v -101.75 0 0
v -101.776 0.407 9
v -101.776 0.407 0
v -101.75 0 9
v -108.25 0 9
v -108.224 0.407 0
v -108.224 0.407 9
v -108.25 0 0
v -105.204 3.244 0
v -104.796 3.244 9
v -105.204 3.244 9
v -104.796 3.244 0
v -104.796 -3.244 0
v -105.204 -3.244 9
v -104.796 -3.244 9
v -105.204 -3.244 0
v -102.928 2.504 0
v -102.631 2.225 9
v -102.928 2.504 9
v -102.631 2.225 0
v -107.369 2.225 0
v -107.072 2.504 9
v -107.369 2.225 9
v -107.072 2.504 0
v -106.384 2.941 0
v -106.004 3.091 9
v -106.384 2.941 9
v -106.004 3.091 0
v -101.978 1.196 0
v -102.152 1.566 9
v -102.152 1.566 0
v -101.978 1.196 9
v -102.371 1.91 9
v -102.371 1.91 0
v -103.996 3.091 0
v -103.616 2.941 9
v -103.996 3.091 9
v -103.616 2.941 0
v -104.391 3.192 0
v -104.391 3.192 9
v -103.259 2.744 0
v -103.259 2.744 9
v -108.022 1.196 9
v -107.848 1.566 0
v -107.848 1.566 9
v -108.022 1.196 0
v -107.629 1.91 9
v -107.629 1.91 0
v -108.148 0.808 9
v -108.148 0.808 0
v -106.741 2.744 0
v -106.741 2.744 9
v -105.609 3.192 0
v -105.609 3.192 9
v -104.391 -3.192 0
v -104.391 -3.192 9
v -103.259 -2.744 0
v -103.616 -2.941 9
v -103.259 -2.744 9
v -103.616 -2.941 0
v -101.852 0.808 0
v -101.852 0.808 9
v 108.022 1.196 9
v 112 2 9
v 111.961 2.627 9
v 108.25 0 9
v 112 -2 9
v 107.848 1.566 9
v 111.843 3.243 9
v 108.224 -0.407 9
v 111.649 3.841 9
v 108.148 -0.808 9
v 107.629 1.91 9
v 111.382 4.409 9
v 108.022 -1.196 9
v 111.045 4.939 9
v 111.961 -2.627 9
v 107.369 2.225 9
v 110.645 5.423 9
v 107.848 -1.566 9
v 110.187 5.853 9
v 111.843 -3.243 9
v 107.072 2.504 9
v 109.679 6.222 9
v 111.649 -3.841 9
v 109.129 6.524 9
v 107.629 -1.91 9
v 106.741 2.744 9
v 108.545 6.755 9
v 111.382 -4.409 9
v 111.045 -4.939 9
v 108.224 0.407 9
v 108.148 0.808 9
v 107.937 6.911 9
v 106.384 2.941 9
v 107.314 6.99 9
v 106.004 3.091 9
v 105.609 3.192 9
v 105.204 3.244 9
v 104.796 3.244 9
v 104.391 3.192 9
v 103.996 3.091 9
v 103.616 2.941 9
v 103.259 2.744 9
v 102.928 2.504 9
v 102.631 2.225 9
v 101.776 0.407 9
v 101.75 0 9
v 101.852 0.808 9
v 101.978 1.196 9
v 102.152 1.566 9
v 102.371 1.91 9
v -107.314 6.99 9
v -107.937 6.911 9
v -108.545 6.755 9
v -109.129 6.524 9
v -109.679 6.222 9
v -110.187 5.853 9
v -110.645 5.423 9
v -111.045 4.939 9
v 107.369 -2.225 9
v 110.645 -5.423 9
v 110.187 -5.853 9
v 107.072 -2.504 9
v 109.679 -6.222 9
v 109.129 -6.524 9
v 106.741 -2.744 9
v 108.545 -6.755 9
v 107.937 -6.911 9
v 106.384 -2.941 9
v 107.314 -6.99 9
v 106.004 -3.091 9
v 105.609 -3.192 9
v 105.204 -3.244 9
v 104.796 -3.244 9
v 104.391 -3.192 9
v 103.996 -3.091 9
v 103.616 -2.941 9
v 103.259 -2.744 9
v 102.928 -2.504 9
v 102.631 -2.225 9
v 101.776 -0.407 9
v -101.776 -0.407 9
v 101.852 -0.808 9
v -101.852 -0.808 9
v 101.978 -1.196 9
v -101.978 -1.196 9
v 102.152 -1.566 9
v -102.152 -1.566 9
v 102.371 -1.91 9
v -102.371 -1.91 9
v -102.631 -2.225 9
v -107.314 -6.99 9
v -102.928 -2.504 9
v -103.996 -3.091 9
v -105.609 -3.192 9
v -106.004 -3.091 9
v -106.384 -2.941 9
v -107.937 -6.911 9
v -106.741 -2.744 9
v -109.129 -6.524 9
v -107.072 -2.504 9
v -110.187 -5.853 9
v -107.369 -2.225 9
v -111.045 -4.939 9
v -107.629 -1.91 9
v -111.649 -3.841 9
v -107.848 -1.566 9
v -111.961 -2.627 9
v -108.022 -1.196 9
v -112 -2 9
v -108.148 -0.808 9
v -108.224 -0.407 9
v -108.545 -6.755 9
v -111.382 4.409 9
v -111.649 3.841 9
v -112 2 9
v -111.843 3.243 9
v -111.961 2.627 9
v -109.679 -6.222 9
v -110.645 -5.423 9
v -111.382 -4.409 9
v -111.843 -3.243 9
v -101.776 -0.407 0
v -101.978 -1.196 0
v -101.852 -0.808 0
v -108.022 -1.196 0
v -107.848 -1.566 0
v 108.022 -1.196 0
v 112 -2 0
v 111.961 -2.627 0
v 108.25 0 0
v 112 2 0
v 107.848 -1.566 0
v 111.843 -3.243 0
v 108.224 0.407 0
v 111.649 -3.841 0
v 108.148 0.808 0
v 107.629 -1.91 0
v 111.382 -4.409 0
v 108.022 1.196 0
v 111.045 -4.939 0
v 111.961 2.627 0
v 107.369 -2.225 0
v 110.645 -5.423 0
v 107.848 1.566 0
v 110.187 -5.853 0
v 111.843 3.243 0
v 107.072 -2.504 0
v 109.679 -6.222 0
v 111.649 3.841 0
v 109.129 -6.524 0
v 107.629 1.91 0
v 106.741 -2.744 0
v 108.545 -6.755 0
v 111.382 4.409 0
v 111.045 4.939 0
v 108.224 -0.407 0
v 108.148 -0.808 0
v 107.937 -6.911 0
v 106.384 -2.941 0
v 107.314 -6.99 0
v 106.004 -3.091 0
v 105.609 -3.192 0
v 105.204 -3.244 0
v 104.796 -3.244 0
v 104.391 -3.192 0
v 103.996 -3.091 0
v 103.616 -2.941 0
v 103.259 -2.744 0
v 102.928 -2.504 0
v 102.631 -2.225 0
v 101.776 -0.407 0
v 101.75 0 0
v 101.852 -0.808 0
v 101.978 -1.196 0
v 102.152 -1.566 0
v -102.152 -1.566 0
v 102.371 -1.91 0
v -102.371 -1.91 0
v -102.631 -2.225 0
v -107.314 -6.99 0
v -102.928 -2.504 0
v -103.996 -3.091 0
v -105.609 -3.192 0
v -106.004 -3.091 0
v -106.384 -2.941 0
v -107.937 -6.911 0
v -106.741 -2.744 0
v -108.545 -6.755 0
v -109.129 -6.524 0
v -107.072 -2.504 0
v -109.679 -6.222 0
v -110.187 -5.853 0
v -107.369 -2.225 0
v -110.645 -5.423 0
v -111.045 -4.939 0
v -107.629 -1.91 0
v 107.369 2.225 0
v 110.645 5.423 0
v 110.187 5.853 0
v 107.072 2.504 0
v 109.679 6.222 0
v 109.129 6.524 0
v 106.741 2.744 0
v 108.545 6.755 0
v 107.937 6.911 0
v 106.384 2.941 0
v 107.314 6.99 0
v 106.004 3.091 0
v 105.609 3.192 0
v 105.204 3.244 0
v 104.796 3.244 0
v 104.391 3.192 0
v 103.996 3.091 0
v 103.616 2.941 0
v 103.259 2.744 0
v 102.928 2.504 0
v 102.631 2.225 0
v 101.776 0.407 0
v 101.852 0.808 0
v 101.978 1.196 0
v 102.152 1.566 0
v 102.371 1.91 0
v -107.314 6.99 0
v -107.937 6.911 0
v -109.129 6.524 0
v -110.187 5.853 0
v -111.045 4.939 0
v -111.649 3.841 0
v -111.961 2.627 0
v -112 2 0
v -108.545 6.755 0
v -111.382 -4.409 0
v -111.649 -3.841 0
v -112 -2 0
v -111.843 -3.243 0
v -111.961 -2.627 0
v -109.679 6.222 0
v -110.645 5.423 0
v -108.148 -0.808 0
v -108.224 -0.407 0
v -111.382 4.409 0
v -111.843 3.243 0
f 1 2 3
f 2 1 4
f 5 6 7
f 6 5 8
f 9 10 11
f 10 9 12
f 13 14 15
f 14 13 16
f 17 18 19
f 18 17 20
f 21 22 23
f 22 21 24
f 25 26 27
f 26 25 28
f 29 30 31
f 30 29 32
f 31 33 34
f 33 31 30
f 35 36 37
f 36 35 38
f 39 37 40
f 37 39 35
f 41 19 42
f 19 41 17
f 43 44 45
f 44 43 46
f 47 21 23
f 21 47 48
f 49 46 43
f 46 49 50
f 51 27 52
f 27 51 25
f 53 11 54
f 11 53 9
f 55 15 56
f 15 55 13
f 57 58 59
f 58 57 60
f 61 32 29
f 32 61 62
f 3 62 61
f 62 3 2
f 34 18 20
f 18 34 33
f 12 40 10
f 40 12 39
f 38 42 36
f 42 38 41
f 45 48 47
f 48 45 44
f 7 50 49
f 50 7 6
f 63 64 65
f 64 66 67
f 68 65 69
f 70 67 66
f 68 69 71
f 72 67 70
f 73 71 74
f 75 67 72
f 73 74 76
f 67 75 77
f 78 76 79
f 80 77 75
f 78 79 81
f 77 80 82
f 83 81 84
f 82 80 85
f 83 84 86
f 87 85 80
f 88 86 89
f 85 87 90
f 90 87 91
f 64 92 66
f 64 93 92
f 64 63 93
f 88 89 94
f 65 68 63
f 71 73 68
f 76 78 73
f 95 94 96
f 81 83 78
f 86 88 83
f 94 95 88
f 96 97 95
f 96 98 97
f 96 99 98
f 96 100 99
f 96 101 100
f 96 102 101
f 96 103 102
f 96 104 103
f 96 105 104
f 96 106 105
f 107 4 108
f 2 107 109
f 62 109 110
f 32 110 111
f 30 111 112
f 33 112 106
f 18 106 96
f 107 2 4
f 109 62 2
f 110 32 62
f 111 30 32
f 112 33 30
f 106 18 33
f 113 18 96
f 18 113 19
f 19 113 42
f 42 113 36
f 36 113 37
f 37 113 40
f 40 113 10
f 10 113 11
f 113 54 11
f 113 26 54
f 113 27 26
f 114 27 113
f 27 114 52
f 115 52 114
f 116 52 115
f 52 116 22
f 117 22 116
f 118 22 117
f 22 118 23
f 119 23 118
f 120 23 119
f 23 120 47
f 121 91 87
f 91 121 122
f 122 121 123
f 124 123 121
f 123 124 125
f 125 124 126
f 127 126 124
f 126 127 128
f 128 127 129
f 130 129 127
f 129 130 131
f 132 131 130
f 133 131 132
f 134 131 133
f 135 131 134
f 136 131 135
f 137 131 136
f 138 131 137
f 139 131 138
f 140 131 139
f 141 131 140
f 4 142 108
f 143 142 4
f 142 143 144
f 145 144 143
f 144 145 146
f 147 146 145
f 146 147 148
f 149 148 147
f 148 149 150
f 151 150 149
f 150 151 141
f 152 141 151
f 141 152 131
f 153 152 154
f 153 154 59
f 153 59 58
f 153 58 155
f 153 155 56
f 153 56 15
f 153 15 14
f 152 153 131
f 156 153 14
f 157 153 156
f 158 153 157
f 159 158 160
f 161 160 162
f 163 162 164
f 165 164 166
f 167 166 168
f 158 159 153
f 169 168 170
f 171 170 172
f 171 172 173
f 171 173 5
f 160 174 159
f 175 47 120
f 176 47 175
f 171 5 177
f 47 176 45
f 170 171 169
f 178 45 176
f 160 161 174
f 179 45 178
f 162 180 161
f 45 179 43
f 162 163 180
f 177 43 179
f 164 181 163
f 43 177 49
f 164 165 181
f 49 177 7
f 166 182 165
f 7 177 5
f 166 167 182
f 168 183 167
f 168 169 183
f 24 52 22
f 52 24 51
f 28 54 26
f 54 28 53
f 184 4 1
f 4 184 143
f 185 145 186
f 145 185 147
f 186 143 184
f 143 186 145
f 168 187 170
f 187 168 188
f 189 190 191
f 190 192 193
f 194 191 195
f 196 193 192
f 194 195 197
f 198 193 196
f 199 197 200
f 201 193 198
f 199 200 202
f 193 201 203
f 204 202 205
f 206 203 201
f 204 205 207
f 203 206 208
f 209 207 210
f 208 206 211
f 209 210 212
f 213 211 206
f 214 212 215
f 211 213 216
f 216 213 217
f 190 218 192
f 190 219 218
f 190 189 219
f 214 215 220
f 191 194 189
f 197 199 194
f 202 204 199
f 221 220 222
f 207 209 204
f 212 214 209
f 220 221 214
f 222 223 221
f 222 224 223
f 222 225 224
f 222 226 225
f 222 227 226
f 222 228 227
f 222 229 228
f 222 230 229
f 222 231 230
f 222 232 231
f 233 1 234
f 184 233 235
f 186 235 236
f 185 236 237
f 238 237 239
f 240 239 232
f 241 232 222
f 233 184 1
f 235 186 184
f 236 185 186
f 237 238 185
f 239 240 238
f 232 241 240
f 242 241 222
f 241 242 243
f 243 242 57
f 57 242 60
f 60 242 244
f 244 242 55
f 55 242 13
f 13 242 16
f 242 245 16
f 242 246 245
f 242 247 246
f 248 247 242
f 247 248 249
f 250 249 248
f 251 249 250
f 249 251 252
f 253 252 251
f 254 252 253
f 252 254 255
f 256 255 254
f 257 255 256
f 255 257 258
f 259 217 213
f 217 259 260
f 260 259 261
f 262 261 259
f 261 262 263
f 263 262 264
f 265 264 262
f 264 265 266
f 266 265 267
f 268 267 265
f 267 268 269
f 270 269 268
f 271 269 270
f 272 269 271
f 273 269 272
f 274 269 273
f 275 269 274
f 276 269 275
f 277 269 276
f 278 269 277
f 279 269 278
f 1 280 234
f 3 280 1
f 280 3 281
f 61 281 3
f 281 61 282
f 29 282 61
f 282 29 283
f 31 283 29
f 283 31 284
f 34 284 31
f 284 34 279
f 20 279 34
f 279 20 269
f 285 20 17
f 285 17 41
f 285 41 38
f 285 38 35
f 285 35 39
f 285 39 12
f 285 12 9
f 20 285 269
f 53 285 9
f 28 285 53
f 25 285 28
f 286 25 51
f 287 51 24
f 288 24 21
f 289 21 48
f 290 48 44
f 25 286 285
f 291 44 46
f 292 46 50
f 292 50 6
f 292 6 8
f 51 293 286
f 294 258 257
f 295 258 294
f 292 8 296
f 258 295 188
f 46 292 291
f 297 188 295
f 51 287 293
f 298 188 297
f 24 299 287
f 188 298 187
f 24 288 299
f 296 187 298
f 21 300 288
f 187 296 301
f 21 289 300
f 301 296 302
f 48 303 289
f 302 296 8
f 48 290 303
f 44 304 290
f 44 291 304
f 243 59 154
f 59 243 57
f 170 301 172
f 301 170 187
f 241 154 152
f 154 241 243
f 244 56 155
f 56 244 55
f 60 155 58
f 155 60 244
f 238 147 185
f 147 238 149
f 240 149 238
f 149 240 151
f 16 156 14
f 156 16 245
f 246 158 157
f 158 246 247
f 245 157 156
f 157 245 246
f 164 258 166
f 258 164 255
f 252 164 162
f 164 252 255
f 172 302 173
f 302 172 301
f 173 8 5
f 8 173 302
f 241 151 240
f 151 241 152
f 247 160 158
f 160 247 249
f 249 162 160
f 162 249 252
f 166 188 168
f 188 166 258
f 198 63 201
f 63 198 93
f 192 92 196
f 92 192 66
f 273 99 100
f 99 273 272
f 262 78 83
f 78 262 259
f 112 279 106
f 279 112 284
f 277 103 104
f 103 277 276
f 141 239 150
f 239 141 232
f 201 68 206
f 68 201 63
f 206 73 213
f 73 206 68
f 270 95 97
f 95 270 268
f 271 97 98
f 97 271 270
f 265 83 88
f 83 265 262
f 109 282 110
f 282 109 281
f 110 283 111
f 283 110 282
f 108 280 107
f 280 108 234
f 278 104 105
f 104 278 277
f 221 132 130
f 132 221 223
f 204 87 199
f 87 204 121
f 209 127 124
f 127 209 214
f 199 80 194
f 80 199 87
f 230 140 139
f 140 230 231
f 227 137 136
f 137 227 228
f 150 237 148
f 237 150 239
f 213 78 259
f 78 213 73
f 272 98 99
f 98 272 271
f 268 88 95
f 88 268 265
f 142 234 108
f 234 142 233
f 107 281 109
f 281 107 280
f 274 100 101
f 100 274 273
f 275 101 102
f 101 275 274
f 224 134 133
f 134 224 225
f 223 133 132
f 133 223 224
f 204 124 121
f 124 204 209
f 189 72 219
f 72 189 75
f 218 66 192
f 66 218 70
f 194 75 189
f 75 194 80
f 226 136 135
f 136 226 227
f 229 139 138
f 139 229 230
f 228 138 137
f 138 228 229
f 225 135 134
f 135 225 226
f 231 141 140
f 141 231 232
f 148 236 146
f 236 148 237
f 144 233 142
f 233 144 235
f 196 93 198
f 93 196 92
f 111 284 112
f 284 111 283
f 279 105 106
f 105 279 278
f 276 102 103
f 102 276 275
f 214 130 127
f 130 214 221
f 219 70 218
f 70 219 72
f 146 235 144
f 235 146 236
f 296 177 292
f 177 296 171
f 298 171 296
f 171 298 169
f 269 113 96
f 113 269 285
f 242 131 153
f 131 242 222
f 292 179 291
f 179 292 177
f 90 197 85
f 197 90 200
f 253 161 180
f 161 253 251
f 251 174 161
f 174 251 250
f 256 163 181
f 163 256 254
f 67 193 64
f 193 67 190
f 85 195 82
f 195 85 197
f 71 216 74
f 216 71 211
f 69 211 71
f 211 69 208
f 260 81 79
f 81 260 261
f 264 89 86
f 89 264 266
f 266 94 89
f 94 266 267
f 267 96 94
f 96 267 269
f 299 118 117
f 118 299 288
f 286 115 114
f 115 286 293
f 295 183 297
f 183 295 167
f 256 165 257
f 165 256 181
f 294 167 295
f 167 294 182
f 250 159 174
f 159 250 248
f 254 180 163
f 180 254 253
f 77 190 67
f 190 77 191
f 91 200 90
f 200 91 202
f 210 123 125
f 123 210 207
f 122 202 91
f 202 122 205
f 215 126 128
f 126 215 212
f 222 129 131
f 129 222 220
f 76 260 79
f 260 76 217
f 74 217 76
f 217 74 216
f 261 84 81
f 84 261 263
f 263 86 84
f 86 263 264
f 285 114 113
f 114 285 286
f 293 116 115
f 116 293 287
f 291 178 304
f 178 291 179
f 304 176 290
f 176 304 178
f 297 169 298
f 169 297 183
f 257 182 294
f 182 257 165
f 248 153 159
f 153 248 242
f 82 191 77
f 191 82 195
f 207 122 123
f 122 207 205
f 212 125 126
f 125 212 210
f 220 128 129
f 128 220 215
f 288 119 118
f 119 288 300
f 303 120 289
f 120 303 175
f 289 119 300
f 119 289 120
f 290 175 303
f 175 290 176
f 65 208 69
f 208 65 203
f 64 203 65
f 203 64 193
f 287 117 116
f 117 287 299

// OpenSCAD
$fn = 50;


difference() {
	union() {
		hull() {
			translate(v = [-107.0000000000, 2.0000000000, 0]) {
				cylinder(h = 9, r = 5);
			}
			translate(v = [107.0000000000, 2.0000000000, 0]) {
				cylinder(h = 9, r = 5);
			}
			translate(v = [-107.0000000000, -2.0000000000, 0]) {
				cylinder(h = 9, r = 5);
			}
			translate(v = [107.0000000000, -2.0000000000, 0]) {
				cylinder(h = 9, r = 5);
			}
		}
	}
	union() {
		translate(v = [-105.0000000000, 0.0000000000, -100.0000000000]) {
			cylinder(h = 200, r = 3.2500000000);
		}
		translate(v = [-105.0000000000, 0.0000000000, -100.0000000000]) {
			cylinder(h = 200, r = 3.2500000000);
		}
		translate(v = [105.0000000000, 0.0000000000, -100.0000000000]) {
			cylinder(h = 200, r = 3.2500000000);
		}
		translate(v = [105.0000000000, 0.0000000000, -100.0000000000]) {
			cylinder(h = 200, r = 3.2500000000);
		}
	}
}
